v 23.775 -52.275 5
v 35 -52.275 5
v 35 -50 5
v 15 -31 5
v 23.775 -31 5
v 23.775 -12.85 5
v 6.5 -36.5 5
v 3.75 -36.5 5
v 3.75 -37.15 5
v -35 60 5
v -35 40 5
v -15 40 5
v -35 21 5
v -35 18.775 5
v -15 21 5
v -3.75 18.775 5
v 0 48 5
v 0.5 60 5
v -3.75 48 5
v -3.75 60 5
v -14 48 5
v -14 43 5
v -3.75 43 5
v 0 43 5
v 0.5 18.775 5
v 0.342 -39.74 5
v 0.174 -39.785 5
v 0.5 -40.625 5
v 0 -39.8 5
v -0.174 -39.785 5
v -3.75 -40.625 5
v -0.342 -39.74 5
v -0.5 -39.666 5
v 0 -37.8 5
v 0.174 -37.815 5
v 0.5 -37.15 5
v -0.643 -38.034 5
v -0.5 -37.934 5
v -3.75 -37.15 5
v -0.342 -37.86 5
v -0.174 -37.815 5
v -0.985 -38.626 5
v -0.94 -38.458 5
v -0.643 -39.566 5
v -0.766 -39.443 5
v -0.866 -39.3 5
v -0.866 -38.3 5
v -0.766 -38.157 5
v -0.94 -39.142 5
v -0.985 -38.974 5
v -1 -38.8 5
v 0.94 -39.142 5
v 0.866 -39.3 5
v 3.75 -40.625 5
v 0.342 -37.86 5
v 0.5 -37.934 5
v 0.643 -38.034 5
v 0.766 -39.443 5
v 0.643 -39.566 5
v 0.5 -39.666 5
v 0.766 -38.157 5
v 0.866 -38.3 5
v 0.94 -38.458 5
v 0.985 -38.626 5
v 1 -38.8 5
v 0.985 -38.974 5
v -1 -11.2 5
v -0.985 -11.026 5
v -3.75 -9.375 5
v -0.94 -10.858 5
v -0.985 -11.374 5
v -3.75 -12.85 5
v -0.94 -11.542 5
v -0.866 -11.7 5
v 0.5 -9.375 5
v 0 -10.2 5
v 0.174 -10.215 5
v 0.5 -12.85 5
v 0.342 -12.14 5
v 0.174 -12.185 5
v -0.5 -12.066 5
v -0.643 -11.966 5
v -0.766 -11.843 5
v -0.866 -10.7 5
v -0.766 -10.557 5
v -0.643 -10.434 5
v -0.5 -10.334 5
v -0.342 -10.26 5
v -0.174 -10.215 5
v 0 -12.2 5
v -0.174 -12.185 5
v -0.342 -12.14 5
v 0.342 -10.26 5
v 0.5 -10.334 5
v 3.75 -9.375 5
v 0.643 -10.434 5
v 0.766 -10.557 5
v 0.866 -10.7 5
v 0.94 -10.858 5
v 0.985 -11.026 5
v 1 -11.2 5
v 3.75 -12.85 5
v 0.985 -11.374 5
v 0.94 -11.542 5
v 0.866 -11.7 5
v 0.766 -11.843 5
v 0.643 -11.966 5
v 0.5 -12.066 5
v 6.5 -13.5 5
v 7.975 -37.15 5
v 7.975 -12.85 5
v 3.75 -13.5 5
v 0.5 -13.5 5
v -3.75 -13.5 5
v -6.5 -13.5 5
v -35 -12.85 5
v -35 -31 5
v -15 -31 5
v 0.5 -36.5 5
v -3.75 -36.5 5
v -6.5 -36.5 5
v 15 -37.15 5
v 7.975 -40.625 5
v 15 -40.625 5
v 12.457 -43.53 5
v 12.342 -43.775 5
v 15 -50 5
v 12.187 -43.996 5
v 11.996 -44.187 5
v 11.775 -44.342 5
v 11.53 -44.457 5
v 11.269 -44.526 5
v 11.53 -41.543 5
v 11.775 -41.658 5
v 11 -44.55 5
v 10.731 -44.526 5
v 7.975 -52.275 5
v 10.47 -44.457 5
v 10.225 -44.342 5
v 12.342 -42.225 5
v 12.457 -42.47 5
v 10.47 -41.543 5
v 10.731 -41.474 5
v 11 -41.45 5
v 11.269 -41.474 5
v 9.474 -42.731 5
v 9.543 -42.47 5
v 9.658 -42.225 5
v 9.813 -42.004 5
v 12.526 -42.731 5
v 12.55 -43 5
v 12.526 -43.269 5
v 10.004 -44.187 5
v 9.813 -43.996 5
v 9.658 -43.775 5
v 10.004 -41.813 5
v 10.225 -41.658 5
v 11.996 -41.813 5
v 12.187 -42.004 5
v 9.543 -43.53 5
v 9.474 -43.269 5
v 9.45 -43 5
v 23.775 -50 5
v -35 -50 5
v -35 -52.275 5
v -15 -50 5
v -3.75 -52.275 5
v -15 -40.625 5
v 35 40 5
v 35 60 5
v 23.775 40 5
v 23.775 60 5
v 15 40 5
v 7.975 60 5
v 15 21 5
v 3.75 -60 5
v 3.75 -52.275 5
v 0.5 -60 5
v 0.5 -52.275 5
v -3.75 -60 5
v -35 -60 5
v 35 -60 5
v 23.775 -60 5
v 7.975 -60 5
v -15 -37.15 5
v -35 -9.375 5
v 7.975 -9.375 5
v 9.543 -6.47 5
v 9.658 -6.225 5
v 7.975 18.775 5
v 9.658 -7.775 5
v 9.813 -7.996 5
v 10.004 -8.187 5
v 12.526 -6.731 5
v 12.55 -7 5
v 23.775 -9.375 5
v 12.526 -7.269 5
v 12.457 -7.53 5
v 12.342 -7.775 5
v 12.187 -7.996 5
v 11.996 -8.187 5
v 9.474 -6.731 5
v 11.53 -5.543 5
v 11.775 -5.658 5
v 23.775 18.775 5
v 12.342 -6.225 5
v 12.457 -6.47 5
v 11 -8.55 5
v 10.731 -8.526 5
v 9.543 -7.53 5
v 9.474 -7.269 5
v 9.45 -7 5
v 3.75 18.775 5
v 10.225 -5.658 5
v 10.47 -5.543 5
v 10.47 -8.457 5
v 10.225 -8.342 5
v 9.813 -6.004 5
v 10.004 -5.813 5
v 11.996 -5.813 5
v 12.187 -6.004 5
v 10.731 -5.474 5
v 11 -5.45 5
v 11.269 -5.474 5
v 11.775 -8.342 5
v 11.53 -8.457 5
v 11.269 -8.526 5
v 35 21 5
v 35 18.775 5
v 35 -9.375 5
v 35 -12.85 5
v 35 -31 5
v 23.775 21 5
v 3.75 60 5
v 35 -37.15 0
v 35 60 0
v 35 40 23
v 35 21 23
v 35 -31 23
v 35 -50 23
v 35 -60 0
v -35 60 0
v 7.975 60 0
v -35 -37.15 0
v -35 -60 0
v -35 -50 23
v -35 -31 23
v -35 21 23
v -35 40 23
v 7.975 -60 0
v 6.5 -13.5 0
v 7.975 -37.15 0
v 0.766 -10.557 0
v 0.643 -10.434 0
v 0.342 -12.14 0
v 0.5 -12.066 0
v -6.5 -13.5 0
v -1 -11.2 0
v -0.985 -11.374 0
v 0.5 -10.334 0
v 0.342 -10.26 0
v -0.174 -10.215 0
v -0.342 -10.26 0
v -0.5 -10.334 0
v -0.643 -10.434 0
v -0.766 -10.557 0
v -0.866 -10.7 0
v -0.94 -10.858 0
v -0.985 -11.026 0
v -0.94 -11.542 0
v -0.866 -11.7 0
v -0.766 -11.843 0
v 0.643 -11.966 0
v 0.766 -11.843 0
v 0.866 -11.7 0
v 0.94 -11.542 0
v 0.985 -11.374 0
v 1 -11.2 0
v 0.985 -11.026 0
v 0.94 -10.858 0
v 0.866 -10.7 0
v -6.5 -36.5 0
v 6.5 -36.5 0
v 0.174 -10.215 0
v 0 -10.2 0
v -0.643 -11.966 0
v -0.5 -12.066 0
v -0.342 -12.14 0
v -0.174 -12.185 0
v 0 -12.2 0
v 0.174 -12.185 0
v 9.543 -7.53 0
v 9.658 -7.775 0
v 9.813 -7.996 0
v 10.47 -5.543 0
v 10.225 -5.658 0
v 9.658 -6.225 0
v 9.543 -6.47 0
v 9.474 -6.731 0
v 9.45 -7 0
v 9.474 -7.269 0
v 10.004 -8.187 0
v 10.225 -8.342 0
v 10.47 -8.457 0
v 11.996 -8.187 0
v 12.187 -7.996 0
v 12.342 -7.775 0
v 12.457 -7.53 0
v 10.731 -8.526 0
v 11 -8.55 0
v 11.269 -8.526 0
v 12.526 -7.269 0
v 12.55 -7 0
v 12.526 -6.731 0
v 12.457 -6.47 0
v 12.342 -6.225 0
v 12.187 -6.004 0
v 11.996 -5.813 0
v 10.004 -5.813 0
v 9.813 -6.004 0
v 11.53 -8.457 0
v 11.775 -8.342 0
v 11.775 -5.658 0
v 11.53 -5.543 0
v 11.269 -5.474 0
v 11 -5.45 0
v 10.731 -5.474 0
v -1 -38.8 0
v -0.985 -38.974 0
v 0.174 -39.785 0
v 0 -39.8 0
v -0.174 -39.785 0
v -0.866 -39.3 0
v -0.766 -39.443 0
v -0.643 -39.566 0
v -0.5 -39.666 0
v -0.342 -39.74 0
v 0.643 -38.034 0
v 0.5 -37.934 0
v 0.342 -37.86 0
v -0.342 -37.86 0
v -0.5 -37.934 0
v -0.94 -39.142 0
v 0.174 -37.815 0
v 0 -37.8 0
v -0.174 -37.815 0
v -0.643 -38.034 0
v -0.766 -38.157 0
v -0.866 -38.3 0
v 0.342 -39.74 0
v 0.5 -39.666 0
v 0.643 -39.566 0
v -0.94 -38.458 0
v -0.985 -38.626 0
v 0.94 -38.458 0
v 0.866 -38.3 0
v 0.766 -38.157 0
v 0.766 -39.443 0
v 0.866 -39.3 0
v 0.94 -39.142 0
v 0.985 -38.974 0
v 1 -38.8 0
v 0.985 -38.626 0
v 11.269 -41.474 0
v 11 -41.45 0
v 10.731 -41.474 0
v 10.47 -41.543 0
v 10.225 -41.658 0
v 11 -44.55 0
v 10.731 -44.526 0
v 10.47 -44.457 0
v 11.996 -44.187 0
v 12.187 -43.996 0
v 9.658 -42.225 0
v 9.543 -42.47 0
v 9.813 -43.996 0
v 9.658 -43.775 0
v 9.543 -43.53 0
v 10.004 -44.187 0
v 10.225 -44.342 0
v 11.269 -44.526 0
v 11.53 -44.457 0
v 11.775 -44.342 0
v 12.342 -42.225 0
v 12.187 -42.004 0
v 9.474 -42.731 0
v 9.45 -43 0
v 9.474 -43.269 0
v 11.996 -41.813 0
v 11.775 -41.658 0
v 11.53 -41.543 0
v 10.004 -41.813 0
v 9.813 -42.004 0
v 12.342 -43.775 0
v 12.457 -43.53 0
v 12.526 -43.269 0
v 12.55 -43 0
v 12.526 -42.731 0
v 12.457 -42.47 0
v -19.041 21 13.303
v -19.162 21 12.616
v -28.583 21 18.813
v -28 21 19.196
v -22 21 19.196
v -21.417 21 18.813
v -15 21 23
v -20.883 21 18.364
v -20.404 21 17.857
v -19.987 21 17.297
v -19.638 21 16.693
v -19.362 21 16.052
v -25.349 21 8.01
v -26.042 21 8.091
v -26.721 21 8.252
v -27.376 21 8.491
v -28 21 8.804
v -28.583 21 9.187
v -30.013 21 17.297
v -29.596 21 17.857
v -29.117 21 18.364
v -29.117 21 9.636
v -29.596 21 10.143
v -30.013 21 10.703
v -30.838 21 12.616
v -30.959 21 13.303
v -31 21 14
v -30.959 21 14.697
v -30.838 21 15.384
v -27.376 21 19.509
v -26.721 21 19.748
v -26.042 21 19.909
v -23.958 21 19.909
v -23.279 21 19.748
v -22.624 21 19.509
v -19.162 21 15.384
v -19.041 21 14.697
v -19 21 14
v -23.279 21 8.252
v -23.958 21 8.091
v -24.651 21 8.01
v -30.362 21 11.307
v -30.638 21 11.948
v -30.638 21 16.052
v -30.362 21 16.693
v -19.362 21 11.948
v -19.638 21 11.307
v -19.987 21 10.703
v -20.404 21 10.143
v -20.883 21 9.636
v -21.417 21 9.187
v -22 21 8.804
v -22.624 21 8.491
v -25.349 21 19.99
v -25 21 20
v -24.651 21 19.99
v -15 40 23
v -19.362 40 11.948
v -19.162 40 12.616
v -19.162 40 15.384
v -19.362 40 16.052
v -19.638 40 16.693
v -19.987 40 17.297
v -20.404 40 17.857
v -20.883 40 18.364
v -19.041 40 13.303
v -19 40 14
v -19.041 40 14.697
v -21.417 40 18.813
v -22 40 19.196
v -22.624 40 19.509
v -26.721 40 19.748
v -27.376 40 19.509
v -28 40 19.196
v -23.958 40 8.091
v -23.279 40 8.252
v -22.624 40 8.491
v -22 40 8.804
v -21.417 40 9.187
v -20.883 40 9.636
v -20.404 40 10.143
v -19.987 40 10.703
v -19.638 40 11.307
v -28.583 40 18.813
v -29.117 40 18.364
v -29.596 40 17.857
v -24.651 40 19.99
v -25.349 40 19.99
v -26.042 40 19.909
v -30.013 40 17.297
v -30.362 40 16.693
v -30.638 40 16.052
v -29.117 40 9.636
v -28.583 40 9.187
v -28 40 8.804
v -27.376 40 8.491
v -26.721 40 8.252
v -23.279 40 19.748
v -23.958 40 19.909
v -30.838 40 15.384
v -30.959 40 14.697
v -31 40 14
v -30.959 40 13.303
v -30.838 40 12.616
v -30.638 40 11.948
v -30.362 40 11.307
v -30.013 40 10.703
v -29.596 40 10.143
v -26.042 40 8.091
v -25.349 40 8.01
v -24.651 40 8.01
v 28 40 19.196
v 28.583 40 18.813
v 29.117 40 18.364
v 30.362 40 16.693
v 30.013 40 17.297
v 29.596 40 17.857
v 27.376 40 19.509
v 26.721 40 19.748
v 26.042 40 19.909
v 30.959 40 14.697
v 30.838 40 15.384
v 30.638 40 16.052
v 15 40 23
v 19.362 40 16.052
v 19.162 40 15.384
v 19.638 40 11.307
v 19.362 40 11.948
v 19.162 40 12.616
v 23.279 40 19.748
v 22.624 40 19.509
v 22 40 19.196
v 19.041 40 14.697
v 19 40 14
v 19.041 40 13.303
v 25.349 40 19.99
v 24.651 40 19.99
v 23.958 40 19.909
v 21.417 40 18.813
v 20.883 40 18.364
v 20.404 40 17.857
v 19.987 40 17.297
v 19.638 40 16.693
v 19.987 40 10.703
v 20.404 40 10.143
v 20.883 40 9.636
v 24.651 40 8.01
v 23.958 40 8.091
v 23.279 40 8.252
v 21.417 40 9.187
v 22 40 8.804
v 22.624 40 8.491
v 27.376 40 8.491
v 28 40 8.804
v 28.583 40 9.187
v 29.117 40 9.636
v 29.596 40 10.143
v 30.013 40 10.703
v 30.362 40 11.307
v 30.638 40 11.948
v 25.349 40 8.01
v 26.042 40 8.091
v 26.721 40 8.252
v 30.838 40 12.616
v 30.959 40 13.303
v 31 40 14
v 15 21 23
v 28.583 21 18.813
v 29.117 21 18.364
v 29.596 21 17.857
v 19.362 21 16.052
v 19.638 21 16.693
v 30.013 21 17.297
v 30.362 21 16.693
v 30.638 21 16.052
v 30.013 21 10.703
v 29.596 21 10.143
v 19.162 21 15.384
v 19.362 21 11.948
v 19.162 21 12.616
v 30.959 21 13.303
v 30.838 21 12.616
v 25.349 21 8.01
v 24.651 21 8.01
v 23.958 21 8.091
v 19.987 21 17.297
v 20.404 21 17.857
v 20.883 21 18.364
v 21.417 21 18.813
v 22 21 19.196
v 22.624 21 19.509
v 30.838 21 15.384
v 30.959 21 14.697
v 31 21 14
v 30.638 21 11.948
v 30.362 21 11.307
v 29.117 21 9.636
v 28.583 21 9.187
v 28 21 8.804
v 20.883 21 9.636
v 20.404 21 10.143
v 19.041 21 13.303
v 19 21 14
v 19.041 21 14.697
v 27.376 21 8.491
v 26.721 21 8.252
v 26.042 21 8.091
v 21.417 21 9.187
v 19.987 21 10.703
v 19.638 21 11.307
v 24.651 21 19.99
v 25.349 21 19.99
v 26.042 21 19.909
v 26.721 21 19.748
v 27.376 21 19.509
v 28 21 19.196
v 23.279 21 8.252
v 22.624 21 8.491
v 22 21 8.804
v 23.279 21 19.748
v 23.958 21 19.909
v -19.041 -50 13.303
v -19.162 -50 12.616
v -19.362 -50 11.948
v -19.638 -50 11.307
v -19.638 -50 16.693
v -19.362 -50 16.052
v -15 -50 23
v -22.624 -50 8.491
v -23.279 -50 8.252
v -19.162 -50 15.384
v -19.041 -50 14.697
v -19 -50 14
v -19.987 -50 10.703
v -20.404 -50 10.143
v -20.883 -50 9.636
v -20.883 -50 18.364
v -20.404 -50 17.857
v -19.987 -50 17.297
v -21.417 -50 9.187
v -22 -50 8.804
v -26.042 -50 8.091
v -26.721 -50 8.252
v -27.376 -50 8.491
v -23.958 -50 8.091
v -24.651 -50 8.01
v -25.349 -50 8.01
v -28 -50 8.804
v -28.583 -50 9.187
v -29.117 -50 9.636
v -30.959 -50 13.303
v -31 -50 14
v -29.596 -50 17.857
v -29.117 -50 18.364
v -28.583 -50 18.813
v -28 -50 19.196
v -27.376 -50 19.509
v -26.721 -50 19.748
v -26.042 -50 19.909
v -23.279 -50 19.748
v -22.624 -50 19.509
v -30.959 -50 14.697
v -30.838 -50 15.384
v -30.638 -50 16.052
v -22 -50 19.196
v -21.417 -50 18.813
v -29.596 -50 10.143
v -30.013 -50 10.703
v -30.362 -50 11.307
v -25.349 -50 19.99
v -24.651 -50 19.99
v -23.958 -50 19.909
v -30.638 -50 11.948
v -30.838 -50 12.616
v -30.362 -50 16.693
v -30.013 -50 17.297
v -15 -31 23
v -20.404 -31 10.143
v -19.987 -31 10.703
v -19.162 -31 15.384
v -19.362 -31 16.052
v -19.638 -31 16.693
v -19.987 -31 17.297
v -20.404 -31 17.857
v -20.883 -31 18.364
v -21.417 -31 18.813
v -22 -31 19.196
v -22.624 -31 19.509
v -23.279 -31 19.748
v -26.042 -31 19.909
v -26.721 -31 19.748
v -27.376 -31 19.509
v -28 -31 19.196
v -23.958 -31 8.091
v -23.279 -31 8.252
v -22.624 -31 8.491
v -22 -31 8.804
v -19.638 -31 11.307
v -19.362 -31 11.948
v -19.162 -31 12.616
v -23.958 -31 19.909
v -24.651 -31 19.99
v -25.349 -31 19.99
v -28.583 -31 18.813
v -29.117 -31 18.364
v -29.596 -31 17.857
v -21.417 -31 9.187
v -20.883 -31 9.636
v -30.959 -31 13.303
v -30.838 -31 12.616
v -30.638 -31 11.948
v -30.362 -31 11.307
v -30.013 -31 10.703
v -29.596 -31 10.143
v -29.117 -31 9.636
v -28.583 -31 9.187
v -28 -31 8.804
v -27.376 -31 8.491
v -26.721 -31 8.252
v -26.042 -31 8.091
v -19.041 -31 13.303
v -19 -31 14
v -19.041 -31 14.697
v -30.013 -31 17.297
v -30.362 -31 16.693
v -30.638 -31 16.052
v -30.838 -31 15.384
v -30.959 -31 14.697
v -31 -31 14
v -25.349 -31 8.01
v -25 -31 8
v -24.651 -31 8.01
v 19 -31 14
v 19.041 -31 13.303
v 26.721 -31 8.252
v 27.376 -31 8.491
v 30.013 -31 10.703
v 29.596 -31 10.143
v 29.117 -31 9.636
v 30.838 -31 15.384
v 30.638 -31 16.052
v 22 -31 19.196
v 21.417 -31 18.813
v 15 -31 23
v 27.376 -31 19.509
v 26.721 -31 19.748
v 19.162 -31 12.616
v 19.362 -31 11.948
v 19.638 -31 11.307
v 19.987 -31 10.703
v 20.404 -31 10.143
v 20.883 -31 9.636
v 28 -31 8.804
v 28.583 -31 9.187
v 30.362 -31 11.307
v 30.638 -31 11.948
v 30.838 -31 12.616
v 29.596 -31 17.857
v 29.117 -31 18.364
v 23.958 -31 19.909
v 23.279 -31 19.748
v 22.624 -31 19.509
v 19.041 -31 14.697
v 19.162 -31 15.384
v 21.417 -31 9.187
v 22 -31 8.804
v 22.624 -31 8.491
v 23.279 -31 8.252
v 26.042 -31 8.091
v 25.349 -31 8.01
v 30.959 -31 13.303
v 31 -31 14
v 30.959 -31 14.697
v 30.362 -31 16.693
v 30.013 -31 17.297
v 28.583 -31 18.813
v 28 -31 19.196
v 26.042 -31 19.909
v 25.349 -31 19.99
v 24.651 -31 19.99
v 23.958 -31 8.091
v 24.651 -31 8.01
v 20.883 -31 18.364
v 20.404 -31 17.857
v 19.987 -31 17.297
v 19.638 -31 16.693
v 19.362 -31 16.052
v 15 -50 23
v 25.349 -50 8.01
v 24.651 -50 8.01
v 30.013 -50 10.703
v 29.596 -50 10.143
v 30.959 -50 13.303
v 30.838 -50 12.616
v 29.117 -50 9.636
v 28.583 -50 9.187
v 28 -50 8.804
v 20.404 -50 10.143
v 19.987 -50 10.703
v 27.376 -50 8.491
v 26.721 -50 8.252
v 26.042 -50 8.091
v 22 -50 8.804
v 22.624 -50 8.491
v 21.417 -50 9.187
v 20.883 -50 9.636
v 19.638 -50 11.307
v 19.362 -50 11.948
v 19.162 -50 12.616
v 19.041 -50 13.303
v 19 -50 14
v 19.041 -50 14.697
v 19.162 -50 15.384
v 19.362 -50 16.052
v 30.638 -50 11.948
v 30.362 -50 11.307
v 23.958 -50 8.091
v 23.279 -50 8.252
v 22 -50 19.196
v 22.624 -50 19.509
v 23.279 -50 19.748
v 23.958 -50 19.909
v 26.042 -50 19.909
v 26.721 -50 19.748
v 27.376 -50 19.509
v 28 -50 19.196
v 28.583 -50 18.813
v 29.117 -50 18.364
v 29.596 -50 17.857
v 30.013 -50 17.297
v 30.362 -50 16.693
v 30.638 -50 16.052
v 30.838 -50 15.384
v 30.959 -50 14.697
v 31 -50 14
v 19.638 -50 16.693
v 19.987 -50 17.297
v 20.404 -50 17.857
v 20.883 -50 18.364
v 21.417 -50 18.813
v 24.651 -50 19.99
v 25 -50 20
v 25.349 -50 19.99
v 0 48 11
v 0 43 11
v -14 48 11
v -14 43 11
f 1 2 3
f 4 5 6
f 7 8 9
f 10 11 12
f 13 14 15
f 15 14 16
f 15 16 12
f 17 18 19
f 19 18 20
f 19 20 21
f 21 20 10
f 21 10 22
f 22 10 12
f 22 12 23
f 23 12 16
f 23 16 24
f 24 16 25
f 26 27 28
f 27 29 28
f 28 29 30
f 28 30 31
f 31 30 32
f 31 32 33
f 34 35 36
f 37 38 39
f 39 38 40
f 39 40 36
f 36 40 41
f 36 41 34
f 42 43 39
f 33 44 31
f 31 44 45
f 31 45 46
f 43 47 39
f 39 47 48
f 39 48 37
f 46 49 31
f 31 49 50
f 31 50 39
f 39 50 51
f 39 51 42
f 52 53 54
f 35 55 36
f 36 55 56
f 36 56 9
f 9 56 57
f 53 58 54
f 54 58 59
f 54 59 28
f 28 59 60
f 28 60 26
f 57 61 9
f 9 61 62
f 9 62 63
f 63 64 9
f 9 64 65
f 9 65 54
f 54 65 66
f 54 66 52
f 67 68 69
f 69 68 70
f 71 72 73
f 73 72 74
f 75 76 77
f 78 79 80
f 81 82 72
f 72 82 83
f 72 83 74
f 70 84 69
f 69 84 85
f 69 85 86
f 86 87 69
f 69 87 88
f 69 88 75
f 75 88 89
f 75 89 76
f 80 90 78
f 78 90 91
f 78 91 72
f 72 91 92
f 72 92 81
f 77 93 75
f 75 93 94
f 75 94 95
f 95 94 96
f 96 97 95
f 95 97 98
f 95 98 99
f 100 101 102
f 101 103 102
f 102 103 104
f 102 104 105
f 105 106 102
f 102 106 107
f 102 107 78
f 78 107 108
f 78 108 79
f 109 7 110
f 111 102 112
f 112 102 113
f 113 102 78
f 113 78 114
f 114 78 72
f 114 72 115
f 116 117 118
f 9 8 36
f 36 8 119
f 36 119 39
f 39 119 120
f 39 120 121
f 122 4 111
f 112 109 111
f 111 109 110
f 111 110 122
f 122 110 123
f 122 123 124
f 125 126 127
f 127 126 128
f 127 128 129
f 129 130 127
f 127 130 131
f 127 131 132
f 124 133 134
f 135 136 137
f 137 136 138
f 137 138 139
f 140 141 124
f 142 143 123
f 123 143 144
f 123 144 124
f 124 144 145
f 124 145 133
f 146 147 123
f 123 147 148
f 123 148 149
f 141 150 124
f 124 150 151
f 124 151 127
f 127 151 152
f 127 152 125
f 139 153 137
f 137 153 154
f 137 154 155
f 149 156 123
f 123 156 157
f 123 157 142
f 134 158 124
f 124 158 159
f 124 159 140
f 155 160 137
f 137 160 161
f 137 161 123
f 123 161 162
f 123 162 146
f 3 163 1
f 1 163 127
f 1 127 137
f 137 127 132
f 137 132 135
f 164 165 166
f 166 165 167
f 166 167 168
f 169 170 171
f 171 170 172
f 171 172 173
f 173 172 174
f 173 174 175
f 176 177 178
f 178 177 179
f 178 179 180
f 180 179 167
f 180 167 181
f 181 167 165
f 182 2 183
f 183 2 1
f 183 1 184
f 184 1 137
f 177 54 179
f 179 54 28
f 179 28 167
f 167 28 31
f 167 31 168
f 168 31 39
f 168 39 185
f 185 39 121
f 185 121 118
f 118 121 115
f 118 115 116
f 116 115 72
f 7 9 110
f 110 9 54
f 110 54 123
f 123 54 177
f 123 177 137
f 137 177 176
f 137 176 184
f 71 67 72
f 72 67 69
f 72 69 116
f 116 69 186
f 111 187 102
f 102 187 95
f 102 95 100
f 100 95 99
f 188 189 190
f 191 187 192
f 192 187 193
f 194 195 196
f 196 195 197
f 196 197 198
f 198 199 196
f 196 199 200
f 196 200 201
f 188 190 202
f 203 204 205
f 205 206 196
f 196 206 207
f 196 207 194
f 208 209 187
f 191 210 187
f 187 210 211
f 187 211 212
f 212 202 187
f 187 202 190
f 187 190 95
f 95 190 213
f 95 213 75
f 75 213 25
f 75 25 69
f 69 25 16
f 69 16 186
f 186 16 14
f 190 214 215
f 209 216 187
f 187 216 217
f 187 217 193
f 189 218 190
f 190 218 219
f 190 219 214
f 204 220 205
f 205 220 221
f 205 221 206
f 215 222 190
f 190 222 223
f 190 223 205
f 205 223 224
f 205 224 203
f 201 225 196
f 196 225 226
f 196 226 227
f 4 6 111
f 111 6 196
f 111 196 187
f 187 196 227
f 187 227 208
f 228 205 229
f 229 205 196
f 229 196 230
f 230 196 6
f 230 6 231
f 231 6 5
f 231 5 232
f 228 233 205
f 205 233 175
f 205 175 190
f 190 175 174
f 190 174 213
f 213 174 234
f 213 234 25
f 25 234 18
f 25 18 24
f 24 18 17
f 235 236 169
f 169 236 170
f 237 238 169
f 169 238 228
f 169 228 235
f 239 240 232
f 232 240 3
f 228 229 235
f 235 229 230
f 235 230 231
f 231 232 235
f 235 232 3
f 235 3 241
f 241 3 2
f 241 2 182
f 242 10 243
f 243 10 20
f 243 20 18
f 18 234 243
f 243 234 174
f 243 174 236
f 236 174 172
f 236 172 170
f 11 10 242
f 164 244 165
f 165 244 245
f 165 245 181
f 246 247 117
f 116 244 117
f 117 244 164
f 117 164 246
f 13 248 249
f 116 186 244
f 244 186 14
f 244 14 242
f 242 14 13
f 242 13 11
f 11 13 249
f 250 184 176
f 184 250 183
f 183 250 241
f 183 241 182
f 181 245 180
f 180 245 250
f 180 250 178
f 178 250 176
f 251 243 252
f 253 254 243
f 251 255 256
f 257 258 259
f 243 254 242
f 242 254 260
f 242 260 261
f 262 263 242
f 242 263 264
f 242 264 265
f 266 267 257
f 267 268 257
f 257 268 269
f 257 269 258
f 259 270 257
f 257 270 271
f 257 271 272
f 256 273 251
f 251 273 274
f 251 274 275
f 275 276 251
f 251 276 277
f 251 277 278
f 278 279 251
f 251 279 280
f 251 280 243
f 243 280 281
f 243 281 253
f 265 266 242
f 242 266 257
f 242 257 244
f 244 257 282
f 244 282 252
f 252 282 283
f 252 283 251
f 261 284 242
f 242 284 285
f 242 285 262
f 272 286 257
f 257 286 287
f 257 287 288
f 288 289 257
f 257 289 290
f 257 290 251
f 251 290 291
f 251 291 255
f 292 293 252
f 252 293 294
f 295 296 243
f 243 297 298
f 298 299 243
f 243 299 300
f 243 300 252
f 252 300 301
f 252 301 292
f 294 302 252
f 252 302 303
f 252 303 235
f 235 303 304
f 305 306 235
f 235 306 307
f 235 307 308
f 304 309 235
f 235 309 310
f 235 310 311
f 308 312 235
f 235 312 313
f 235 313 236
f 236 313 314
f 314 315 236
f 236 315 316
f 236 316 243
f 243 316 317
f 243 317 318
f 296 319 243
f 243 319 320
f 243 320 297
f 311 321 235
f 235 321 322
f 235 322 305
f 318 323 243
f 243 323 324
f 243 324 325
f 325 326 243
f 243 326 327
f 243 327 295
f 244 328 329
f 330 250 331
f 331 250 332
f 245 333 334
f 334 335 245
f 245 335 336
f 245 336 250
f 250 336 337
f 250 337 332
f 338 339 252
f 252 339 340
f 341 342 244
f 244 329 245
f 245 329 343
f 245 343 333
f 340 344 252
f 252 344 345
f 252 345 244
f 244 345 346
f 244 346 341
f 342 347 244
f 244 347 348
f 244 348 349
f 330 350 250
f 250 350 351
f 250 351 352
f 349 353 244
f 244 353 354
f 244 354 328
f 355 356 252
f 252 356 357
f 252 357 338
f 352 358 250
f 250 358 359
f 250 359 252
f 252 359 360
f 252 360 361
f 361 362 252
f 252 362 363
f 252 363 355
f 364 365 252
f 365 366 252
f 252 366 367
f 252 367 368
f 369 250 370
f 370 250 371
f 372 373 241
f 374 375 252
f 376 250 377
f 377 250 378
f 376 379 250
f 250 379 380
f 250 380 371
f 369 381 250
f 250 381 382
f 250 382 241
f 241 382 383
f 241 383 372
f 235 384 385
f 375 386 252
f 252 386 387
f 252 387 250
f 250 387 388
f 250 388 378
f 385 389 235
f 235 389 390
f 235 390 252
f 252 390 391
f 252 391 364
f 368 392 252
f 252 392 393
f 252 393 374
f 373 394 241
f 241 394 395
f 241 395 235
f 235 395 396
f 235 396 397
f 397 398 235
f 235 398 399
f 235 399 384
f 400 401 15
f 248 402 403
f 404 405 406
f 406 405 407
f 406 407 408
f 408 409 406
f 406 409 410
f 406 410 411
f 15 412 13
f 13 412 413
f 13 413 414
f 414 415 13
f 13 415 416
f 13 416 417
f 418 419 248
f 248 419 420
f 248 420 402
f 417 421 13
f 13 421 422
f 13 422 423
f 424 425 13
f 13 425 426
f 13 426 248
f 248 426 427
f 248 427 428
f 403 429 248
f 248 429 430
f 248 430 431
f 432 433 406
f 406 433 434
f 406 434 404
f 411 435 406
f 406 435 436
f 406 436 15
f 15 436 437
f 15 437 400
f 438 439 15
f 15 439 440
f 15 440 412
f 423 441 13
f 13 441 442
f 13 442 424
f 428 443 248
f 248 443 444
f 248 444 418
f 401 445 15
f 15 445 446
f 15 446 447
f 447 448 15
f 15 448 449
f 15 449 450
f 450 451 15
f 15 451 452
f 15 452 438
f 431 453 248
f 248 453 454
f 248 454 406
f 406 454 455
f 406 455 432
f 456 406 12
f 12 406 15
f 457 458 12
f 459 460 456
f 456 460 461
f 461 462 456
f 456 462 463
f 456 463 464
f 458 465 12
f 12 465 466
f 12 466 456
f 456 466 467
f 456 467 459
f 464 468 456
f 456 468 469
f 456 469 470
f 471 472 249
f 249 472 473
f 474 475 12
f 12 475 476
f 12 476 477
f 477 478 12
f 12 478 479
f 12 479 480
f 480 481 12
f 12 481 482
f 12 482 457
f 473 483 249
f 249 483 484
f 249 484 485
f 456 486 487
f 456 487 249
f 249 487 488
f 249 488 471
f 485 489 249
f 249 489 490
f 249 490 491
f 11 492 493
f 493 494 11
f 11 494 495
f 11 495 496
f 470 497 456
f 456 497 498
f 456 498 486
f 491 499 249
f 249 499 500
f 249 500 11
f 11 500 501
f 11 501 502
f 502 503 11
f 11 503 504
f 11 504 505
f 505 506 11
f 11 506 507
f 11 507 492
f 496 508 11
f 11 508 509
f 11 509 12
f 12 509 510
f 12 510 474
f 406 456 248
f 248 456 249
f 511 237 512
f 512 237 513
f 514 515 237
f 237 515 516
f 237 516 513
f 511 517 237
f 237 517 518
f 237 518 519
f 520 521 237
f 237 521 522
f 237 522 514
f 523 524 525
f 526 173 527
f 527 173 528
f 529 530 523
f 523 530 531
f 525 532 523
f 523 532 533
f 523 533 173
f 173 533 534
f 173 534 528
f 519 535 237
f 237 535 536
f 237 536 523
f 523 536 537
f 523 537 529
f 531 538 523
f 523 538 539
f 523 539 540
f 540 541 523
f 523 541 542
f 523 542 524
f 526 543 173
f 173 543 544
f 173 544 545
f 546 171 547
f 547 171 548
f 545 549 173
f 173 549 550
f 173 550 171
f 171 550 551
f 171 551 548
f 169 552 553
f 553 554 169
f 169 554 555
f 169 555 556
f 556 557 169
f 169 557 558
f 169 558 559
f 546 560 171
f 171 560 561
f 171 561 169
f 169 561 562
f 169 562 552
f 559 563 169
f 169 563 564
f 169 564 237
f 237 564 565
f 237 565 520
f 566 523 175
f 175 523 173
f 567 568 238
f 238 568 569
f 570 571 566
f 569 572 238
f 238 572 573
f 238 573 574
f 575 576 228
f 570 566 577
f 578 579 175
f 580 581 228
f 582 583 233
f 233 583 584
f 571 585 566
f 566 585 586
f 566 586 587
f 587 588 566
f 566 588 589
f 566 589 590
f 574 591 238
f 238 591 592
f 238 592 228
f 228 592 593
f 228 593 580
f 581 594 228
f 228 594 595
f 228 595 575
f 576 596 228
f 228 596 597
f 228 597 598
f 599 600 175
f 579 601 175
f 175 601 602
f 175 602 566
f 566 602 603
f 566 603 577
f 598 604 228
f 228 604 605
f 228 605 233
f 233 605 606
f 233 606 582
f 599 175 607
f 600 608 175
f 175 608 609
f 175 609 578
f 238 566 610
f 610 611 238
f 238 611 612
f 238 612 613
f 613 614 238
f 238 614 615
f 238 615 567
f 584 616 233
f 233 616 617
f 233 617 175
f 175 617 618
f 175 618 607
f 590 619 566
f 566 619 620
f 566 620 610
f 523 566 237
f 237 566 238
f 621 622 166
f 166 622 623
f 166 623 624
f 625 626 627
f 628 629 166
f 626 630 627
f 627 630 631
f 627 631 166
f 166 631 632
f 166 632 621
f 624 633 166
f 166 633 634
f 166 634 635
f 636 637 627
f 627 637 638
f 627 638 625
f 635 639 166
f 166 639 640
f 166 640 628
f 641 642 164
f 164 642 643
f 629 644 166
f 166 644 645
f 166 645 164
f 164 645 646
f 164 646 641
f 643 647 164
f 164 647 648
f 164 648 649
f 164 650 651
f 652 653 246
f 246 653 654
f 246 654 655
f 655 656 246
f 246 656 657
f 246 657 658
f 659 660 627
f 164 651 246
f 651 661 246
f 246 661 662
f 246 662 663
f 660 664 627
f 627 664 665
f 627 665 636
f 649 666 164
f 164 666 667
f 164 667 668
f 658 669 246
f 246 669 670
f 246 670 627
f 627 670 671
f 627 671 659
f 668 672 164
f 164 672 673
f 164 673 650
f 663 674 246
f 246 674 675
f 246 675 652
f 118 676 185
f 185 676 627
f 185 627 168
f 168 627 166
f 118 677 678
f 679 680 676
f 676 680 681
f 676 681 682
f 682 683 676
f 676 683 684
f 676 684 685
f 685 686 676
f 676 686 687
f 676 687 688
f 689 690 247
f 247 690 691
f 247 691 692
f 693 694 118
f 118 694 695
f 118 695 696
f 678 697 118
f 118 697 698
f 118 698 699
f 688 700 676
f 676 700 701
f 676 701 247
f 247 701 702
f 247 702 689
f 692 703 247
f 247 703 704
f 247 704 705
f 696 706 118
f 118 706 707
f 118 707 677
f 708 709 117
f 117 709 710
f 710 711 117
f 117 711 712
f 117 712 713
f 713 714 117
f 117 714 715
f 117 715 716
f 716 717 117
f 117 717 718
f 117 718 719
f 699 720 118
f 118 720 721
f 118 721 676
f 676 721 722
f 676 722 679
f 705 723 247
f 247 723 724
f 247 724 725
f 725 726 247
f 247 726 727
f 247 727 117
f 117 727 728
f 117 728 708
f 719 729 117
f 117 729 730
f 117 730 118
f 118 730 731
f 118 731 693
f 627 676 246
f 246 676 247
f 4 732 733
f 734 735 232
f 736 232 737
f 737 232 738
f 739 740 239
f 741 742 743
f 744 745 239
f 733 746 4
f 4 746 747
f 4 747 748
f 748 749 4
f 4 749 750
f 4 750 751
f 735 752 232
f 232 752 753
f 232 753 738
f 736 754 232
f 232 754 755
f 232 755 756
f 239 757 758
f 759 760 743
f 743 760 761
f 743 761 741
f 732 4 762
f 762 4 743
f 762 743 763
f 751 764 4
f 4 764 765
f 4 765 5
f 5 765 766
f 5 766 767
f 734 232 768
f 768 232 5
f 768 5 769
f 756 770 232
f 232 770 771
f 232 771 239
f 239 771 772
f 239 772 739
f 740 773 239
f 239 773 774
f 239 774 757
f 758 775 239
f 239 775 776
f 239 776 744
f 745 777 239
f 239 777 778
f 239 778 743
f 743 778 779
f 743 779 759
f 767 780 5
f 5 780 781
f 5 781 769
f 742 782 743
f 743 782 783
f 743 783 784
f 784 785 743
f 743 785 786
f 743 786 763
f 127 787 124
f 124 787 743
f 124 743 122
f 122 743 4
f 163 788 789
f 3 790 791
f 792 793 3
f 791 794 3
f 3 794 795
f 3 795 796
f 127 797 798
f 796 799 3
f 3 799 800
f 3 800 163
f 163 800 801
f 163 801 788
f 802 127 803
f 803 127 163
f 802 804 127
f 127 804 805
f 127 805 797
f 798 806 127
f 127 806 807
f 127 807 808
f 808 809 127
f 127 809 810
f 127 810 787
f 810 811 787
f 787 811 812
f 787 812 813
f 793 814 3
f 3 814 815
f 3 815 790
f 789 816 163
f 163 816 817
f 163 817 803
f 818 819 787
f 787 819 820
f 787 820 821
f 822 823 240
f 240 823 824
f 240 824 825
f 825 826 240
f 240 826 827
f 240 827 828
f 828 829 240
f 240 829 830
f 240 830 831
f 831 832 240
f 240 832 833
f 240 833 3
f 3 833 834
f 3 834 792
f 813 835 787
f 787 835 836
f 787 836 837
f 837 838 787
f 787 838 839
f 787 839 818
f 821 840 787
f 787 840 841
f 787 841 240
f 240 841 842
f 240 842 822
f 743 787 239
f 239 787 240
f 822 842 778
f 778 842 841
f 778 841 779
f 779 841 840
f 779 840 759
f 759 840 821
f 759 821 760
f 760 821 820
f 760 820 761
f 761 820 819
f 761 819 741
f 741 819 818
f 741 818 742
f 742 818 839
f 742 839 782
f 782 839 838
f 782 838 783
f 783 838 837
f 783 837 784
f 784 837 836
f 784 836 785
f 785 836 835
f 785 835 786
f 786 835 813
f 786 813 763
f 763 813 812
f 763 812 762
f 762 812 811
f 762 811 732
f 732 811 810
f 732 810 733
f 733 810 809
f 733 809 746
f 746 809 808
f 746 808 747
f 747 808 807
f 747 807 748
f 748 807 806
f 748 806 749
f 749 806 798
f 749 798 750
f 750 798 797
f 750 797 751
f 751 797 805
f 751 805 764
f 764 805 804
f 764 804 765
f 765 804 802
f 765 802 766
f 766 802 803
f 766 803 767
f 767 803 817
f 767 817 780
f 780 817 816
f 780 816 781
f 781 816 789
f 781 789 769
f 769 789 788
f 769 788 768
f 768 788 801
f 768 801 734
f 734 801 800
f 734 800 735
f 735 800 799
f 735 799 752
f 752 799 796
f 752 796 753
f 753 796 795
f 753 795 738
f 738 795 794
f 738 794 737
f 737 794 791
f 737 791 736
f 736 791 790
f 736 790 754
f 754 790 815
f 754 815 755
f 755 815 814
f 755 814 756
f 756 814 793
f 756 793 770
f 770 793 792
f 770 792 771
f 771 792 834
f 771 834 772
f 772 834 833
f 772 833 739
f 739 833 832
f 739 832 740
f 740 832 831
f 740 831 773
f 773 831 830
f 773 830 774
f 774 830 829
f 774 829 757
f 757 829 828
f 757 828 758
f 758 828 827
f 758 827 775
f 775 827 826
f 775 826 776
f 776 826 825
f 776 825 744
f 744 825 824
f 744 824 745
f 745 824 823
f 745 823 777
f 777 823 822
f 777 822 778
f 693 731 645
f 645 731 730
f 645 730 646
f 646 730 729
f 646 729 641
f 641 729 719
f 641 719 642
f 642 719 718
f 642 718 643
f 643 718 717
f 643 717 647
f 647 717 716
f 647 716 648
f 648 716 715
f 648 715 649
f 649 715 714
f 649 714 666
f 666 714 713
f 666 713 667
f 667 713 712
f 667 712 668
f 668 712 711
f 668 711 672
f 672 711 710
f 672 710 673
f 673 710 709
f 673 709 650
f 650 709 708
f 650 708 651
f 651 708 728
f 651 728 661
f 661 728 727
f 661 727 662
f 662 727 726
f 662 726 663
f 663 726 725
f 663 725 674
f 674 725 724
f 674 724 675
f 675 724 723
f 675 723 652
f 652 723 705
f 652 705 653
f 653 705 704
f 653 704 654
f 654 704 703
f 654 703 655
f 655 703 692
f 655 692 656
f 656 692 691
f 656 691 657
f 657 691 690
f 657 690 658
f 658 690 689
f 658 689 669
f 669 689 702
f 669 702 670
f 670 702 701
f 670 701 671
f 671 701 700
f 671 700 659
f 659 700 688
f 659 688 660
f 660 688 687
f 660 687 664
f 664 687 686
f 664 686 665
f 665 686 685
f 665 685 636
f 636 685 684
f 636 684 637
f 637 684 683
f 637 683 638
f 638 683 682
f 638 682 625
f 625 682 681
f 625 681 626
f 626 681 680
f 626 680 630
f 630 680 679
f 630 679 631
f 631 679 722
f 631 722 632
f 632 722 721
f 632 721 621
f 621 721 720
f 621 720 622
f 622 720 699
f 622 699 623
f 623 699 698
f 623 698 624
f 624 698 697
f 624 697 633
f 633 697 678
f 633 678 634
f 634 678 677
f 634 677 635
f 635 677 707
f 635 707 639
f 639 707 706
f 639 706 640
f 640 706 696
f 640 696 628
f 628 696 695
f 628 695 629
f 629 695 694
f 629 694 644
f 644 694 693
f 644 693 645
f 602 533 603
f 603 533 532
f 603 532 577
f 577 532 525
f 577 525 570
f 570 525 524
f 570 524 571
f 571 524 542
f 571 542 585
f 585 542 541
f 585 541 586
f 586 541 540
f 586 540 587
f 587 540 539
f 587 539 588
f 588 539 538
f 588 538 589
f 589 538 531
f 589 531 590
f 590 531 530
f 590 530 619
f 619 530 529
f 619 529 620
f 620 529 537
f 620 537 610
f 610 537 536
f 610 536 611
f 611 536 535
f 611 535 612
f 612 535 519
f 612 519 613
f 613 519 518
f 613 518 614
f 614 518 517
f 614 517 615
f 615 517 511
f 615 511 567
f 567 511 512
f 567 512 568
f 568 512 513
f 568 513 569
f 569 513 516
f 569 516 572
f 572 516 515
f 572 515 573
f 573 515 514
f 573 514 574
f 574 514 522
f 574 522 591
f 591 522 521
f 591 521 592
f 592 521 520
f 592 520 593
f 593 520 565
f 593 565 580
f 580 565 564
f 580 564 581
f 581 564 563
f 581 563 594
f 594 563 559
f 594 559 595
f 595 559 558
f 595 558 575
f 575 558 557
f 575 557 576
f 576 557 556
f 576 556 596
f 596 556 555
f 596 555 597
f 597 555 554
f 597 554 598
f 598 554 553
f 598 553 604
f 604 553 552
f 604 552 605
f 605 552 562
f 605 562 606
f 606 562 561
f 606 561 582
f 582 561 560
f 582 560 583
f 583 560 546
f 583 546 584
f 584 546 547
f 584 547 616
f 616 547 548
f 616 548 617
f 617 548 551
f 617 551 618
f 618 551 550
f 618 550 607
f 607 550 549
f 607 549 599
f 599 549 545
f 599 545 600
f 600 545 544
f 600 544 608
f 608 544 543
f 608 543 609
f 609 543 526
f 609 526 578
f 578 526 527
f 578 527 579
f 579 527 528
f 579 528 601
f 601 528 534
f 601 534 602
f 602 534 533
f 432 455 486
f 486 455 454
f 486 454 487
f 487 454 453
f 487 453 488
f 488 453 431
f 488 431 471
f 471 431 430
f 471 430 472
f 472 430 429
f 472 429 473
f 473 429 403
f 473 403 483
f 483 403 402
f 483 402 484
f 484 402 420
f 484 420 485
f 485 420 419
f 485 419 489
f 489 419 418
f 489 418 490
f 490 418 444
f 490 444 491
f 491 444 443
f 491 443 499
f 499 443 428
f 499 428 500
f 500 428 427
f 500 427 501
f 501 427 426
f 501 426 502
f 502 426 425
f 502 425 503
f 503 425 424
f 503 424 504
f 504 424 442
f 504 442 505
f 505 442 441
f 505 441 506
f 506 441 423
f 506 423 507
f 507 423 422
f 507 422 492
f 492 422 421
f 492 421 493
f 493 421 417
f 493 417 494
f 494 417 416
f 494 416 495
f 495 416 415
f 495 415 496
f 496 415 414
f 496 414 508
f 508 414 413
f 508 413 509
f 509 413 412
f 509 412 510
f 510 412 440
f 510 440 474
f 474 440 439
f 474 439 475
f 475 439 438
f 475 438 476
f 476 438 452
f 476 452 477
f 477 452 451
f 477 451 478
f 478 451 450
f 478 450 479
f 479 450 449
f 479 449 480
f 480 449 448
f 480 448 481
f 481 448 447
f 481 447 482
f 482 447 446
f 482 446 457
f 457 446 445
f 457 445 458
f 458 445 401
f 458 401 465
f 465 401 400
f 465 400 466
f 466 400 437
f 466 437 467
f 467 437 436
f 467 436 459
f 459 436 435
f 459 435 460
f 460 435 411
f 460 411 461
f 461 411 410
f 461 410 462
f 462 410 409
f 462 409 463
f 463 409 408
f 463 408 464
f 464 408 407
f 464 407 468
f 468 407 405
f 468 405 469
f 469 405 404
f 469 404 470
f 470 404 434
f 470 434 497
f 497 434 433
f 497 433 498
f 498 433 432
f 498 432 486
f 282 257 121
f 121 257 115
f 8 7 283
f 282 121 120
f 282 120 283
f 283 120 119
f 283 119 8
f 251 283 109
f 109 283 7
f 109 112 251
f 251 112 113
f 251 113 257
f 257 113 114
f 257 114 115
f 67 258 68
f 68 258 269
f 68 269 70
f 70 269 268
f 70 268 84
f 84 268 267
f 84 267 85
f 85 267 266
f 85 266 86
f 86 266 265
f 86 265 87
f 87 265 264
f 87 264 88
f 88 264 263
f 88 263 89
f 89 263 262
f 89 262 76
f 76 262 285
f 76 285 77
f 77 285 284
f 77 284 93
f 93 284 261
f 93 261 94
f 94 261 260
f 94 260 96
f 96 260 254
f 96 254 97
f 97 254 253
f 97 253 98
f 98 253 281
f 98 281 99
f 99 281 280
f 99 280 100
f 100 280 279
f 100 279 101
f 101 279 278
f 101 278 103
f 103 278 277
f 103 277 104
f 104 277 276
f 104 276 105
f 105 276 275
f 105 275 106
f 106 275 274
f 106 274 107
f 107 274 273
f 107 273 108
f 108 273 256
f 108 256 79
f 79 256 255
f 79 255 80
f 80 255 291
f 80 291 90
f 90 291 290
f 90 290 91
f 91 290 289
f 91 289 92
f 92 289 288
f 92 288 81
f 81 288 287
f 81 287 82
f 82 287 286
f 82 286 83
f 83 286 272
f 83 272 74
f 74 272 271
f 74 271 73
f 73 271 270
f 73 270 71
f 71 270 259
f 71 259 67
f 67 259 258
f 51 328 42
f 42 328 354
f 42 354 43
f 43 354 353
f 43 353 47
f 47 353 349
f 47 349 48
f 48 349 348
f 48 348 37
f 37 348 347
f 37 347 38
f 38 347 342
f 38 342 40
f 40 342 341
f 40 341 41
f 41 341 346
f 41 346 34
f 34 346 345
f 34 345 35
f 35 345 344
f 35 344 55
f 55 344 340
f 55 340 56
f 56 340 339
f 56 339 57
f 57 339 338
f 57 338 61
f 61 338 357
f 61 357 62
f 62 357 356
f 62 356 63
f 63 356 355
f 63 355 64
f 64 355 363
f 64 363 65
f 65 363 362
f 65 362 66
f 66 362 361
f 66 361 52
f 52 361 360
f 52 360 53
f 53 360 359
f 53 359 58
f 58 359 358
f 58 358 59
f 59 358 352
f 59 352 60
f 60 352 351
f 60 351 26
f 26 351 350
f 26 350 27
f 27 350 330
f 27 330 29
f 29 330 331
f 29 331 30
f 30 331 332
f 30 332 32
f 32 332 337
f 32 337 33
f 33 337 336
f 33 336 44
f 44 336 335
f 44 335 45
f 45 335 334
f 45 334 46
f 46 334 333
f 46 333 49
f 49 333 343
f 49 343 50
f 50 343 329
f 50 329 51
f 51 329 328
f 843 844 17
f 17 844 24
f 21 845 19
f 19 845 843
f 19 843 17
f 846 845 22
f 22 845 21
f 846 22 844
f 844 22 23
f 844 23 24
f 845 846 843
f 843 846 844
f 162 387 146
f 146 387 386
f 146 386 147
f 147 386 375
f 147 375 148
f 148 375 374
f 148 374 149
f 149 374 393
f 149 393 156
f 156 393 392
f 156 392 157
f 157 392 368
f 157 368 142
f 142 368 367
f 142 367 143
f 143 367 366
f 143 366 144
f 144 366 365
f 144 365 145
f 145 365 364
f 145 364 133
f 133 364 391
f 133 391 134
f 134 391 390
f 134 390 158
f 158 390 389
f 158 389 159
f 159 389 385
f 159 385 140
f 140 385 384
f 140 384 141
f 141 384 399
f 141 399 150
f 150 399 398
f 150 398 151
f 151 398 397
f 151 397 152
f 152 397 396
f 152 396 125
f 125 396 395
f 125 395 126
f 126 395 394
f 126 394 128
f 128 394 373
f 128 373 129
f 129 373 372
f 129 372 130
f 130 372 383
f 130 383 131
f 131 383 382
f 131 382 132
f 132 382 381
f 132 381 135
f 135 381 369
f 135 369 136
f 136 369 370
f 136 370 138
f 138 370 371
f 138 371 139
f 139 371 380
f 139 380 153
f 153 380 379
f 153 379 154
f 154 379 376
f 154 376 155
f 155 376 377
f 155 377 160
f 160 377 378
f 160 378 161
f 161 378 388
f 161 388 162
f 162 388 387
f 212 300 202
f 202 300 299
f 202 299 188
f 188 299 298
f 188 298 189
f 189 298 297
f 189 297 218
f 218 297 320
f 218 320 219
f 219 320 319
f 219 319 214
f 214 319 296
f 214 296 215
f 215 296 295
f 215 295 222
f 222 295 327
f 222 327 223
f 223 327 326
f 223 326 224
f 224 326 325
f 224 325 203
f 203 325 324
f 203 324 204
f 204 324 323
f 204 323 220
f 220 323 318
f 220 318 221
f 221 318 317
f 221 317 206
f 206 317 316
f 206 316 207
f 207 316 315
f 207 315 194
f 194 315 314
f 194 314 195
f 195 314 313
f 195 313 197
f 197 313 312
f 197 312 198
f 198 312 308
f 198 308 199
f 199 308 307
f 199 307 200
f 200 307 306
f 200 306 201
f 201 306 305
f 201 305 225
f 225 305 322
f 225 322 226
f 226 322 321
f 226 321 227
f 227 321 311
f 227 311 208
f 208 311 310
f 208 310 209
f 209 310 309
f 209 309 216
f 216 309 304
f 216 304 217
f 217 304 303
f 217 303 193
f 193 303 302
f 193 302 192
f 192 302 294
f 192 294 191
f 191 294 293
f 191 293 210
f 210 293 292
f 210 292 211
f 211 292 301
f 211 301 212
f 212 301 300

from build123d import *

# Parameters (mm, degrees)
SKETCH1_W           = 70
SKETCH1_H           = 120
BOSS_EXTRUDE1_DEPTH = 5
SKETCH2_W           = 20
SKETCH2_H           = 19
BOSS_EXTRUDE2_DEPTH = 18
SKETCH3_R           = 6
CUT_EXTRUDE1_DEPTH  = 109.415865998
CUT_EXTRUDE2_REACH  = 75.171
SKETCH4_R           = 1
SKETCH4_W           = 13
SKETCH4_H           = 23
SKETCH5_W           = 14
SKETCH5_H           = 5
BOSS_EXTRUDE3_DEPTH = 6
SKETCH6_R           = 1.55
CUT_EXTRUDE3_DEPTH  = 74.17103252


with BuildPart() as part:
    # Sketch1 → Boss-Extrude1 (new body)
    with BuildSketch(Plane.XY):
        Rectangle(SKETCH1_W, SKETCH1_H)
    extrude(amount=BOSS_EXTRUDE1_DEPTH)

    # Sketch2 → Boss-Extrude2 (add)
    with BuildSketch(Plane.XY.offset(5)):
        with Locations((-25, 30.5)):
            Rectangle(SKETCH2_W, SKETCH2_H)
        with Locations((25, 30.5)):
            Rectangle(SKETCH2_W, SKETCH2_H)
        with Locations((-25, -40.5)):
            Rectangle(SKETCH2_W, SKETCH2_H)
        with Locations((25, -40.5)):
            Rectangle(SKETCH2_W, SKETCH2_H)
    extrude(amount=BOSS_EXTRUDE2_DEPTH)

    # Sketch3 → Cut-Extrude1 (cut, through all)
    with BuildSketch(Plane(origin=(0, 40, 0), x_dir=(1, 0, 0), z_dir=(0, 1, 0))):
        with Locations(Location((-25, -14, 0), (0, 0, 180))):
            Circle(SKETCH3_R)
        with Locations(Location((25, -14, 0), (0, 0, 180))):
            Circle(SKETCH3_R)
    extrude(amount=-CUT_EXTRUDE1_DEPTH, mode=Mode.SUBTRACT)

    # Sketch4 → Cut-Extrude2 (cut, up to next)
    with BuildSketch(Plane(origin=(0, 0, 0), x_dir=(-1, 0, 0), z_dir=(0, 0, -1)), mode=Mode.PRIVATE) as cut_extrude2_sk1:
        with Locations((0, -11.2)):
            Circle(SKETCH4_R)
    cut_extrude2_tool1 = extrude(cut_extrude2_sk1.sketch, amount=-CUT_EXTRUDE2_REACH, mode=Mode.PRIVATE) & part.part
    # Sketch4 → Cut-Extrude2 (cut, up to next)
    with BuildSketch(Plane(origin=(0, 0, 0), x_dir=(-1, 0, 0), z_dir=(0, 0, -1)), mode=Mode.PRIVATE) as cut_extrude2_sk2:
        with Locations((0, -38.8)):
            Circle(SKETCH4_R)
    cut_extrude2_tool2 = extrude(cut_extrude2_sk2.sketch, amount=-CUT_EXTRUDE2_REACH, mode=Mode.PRIVATE) & part.part
    # Sketch4 → Cut-Extrude2 (cut, up to next)
    with BuildSketch(Plane(origin=(0, 0, 0), x_dir=(-1, 0, 0), z_dir=(0, 0, -1)), mode=Mode.PRIVATE) as cut_extrude2_sk3:
        with Locations((0, -25)):
            Rectangle(SKETCH4_W, SKETCH4_H)
    cut_extrude2_tool3 = extrude(cut_extrude2_sk3.sketch, amount=-CUT_EXTRUDE2_REACH, mode=Mode.PRIVATE) & part.part
    add(cut_extrude2_tool1.solids().sort_by_distance((0, -11.2, 0))[0], mode=Mode.SUBTRACT)
    add(cut_extrude2_tool2.solids().sort_by_distance((0, -38.8, 0))[0], mode=Mode.SUBTRACT)
    add(cut_extrude2_tool3.solids().sort_by_distance((0, -25, 0))[0], mode=Mode.SUBTRACT)

    # Sketch5 → Boss-Extrude3 (add)
    with BuildSketch(Plane.XY.offset(5)):
        with Locations((-7, 45.5)):
            Rectangle(SKETCH5_W, SKETCH5_H)
    extrude(amount=BOSS_EXTRUDE3_DEPTH)

    # Sketch6 → Cut-Extrude3 (cut, through all)
    with BuildSketch(Plane(origin=(0, 0, 0), x_dir=(-1, 0, 0), z_dir=(0, 0, -1))):
        with Locations((-11, -7)):
            Circle(SKETCH6_R)
        with Locations((-11, -43)):
            Circle(SKETCH6_R)
    extrude(amount=-CUT_EXTRUDE3_DEPTH, mode=Mode.SUBTRACT)


solid = part.part
